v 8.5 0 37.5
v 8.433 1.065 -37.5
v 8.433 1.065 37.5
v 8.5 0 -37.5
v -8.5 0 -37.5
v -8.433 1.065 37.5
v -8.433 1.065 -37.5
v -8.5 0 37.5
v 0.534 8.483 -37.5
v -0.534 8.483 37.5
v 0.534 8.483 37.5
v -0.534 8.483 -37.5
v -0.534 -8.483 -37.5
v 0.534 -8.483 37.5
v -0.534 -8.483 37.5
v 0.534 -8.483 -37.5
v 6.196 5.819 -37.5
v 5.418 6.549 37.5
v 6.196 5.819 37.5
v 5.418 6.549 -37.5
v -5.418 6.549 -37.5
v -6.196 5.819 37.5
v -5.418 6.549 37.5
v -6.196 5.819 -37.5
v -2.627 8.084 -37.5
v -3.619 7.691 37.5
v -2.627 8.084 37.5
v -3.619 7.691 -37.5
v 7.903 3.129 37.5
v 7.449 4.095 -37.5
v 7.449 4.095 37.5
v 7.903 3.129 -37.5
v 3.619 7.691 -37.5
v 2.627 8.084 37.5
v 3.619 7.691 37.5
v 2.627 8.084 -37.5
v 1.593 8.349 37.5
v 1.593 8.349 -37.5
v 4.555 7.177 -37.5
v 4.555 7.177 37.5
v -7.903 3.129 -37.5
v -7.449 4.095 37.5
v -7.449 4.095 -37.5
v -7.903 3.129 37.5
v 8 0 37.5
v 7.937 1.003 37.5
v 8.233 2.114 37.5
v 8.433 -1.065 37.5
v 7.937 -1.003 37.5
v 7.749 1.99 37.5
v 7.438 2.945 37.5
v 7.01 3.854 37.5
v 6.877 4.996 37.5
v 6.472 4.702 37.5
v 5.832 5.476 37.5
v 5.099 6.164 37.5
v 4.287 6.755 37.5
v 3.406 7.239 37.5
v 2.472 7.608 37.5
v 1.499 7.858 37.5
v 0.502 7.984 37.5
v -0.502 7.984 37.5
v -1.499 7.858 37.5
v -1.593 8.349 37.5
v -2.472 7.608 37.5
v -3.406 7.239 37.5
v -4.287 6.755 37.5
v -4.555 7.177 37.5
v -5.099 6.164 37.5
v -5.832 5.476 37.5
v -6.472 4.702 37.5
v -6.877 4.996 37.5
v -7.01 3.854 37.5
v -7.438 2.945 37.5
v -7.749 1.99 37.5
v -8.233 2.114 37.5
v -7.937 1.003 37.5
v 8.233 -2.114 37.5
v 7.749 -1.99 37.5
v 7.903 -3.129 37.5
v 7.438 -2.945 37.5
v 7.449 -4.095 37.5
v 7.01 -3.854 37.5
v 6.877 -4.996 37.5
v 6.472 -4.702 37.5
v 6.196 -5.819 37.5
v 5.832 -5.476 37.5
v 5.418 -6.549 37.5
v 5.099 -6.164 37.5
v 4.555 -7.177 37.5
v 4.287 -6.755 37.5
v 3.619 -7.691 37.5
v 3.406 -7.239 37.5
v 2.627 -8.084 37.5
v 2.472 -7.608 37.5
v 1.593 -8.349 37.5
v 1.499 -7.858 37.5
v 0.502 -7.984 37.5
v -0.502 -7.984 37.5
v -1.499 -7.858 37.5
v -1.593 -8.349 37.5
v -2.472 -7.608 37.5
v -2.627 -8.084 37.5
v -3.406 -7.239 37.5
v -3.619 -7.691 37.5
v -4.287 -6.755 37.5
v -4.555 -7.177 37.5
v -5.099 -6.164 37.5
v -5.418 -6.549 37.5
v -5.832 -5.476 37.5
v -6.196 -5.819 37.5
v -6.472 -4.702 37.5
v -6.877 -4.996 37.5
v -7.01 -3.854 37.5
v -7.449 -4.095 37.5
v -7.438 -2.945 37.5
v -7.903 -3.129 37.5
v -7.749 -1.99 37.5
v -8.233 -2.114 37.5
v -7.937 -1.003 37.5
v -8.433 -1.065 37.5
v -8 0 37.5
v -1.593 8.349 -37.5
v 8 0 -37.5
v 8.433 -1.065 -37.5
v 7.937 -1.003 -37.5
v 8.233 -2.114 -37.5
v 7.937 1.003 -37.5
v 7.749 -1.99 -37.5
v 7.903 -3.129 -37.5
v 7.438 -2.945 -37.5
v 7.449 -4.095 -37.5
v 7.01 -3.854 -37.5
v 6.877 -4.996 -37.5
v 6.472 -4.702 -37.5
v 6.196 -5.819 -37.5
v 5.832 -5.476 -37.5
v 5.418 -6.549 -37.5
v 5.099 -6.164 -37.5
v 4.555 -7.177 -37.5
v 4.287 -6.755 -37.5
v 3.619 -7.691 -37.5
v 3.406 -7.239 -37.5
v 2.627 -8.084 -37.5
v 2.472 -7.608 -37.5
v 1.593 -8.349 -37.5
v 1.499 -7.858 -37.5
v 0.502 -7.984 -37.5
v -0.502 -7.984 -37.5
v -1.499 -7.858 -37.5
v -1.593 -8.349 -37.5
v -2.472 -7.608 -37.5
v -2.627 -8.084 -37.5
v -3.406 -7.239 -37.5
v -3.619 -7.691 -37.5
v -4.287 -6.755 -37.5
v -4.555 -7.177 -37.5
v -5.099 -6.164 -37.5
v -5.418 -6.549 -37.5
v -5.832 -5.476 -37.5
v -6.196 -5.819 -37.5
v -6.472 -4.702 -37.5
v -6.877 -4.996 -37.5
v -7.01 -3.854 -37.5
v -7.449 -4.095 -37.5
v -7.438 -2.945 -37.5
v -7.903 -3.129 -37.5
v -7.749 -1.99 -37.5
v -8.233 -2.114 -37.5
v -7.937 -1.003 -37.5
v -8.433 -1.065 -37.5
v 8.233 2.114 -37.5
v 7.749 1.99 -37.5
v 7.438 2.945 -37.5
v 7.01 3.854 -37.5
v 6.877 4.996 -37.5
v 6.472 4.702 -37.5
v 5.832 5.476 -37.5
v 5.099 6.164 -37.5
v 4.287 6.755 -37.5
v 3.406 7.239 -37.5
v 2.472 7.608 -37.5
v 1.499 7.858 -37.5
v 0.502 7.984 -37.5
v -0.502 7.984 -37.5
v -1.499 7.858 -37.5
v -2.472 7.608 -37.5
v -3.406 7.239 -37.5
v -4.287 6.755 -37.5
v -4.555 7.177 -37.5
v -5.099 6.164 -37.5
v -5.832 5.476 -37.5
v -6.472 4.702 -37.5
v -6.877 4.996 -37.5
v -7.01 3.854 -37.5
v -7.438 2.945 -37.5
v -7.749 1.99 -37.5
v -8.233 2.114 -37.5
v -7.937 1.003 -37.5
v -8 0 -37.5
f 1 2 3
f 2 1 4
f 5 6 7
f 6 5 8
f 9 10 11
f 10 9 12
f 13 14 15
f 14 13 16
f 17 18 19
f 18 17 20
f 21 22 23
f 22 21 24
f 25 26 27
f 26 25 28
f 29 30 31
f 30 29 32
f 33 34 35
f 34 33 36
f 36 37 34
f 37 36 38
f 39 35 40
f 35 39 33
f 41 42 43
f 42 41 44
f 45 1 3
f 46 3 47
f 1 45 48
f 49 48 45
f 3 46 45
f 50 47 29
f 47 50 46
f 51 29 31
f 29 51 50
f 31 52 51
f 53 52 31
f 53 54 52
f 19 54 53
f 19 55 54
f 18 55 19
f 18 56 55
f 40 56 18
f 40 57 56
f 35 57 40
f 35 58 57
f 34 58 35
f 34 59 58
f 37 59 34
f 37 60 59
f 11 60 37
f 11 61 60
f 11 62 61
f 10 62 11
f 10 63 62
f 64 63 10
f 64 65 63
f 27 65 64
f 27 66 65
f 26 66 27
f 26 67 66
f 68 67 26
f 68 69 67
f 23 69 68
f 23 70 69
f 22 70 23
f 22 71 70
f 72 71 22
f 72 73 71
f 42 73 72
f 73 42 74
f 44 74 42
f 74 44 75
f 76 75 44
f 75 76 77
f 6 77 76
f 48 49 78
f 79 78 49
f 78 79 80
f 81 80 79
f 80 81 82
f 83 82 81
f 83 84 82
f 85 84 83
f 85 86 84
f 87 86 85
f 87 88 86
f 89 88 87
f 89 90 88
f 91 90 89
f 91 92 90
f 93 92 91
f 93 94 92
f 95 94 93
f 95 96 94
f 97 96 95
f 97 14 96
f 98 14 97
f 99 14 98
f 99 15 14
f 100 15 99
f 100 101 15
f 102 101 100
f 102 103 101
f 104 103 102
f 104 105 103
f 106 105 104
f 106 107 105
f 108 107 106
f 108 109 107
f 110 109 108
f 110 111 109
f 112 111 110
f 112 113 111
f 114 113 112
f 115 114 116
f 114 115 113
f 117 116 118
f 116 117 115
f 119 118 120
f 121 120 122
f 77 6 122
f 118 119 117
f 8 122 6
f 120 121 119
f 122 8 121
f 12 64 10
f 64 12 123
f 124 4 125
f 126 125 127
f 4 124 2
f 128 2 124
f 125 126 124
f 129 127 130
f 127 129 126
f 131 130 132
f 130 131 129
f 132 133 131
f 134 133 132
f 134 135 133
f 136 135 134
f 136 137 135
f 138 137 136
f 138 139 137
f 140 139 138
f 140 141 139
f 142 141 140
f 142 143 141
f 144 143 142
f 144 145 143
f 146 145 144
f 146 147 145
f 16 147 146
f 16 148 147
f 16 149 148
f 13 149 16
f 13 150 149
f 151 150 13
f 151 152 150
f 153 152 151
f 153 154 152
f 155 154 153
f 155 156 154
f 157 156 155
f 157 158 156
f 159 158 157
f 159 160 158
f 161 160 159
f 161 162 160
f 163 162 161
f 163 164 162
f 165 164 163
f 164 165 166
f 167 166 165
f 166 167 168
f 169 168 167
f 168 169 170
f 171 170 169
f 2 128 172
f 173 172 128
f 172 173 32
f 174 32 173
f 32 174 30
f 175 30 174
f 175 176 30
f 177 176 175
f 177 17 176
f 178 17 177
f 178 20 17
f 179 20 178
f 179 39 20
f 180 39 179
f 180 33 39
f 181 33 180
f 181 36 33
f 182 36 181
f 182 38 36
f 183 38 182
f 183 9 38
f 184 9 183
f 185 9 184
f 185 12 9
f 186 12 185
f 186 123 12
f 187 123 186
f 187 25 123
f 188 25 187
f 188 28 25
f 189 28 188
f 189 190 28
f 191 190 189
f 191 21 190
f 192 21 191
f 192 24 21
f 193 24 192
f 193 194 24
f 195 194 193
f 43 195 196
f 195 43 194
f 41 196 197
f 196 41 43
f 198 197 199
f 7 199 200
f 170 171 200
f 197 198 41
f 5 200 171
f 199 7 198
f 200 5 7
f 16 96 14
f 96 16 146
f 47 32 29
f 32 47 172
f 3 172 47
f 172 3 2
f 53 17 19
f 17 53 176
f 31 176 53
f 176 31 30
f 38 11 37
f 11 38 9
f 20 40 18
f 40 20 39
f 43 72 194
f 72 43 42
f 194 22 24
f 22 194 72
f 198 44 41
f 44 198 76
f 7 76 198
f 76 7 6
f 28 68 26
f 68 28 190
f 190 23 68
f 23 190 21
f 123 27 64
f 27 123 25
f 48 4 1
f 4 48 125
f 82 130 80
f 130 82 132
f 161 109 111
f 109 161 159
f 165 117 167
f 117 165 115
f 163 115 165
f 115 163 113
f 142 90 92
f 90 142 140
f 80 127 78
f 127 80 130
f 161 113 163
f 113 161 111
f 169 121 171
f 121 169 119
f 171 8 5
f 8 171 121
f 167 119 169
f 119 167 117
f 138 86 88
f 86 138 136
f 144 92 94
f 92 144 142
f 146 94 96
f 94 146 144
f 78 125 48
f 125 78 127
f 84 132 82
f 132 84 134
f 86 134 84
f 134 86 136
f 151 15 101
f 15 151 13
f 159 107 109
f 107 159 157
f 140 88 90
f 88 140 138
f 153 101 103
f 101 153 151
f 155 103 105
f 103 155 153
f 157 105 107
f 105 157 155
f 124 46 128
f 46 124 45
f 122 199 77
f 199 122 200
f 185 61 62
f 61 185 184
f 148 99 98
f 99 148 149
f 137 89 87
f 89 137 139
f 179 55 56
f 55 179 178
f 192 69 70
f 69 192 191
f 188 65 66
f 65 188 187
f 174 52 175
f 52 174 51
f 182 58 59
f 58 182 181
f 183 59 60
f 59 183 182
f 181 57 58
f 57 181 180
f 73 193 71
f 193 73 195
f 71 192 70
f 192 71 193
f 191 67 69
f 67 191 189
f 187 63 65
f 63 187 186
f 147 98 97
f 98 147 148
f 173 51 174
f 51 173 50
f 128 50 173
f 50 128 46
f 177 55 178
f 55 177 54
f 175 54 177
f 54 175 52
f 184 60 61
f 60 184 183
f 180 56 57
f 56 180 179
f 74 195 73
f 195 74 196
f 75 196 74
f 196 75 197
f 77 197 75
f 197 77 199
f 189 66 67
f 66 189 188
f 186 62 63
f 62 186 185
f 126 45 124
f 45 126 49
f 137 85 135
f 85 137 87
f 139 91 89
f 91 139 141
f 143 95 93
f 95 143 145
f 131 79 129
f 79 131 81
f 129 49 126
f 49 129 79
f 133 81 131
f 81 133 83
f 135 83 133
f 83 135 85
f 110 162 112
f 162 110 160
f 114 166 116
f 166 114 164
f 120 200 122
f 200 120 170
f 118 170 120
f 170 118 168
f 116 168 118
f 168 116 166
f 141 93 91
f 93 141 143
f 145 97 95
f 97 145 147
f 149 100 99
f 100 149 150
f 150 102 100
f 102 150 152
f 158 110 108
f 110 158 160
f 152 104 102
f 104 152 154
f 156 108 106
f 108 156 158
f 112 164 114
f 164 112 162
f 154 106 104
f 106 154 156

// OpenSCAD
$fn = 50;


difference() {
	union() {
		translate(v = [0, 0, -37.5000000000]) {
			cylinder(h = 75, r = 8.5000000000);
		}
	}
	union() {
		translate(v = [0, 0, -100.0000000000]) {
			cylinder(h = 200, r = 8);
		}
	}
}
